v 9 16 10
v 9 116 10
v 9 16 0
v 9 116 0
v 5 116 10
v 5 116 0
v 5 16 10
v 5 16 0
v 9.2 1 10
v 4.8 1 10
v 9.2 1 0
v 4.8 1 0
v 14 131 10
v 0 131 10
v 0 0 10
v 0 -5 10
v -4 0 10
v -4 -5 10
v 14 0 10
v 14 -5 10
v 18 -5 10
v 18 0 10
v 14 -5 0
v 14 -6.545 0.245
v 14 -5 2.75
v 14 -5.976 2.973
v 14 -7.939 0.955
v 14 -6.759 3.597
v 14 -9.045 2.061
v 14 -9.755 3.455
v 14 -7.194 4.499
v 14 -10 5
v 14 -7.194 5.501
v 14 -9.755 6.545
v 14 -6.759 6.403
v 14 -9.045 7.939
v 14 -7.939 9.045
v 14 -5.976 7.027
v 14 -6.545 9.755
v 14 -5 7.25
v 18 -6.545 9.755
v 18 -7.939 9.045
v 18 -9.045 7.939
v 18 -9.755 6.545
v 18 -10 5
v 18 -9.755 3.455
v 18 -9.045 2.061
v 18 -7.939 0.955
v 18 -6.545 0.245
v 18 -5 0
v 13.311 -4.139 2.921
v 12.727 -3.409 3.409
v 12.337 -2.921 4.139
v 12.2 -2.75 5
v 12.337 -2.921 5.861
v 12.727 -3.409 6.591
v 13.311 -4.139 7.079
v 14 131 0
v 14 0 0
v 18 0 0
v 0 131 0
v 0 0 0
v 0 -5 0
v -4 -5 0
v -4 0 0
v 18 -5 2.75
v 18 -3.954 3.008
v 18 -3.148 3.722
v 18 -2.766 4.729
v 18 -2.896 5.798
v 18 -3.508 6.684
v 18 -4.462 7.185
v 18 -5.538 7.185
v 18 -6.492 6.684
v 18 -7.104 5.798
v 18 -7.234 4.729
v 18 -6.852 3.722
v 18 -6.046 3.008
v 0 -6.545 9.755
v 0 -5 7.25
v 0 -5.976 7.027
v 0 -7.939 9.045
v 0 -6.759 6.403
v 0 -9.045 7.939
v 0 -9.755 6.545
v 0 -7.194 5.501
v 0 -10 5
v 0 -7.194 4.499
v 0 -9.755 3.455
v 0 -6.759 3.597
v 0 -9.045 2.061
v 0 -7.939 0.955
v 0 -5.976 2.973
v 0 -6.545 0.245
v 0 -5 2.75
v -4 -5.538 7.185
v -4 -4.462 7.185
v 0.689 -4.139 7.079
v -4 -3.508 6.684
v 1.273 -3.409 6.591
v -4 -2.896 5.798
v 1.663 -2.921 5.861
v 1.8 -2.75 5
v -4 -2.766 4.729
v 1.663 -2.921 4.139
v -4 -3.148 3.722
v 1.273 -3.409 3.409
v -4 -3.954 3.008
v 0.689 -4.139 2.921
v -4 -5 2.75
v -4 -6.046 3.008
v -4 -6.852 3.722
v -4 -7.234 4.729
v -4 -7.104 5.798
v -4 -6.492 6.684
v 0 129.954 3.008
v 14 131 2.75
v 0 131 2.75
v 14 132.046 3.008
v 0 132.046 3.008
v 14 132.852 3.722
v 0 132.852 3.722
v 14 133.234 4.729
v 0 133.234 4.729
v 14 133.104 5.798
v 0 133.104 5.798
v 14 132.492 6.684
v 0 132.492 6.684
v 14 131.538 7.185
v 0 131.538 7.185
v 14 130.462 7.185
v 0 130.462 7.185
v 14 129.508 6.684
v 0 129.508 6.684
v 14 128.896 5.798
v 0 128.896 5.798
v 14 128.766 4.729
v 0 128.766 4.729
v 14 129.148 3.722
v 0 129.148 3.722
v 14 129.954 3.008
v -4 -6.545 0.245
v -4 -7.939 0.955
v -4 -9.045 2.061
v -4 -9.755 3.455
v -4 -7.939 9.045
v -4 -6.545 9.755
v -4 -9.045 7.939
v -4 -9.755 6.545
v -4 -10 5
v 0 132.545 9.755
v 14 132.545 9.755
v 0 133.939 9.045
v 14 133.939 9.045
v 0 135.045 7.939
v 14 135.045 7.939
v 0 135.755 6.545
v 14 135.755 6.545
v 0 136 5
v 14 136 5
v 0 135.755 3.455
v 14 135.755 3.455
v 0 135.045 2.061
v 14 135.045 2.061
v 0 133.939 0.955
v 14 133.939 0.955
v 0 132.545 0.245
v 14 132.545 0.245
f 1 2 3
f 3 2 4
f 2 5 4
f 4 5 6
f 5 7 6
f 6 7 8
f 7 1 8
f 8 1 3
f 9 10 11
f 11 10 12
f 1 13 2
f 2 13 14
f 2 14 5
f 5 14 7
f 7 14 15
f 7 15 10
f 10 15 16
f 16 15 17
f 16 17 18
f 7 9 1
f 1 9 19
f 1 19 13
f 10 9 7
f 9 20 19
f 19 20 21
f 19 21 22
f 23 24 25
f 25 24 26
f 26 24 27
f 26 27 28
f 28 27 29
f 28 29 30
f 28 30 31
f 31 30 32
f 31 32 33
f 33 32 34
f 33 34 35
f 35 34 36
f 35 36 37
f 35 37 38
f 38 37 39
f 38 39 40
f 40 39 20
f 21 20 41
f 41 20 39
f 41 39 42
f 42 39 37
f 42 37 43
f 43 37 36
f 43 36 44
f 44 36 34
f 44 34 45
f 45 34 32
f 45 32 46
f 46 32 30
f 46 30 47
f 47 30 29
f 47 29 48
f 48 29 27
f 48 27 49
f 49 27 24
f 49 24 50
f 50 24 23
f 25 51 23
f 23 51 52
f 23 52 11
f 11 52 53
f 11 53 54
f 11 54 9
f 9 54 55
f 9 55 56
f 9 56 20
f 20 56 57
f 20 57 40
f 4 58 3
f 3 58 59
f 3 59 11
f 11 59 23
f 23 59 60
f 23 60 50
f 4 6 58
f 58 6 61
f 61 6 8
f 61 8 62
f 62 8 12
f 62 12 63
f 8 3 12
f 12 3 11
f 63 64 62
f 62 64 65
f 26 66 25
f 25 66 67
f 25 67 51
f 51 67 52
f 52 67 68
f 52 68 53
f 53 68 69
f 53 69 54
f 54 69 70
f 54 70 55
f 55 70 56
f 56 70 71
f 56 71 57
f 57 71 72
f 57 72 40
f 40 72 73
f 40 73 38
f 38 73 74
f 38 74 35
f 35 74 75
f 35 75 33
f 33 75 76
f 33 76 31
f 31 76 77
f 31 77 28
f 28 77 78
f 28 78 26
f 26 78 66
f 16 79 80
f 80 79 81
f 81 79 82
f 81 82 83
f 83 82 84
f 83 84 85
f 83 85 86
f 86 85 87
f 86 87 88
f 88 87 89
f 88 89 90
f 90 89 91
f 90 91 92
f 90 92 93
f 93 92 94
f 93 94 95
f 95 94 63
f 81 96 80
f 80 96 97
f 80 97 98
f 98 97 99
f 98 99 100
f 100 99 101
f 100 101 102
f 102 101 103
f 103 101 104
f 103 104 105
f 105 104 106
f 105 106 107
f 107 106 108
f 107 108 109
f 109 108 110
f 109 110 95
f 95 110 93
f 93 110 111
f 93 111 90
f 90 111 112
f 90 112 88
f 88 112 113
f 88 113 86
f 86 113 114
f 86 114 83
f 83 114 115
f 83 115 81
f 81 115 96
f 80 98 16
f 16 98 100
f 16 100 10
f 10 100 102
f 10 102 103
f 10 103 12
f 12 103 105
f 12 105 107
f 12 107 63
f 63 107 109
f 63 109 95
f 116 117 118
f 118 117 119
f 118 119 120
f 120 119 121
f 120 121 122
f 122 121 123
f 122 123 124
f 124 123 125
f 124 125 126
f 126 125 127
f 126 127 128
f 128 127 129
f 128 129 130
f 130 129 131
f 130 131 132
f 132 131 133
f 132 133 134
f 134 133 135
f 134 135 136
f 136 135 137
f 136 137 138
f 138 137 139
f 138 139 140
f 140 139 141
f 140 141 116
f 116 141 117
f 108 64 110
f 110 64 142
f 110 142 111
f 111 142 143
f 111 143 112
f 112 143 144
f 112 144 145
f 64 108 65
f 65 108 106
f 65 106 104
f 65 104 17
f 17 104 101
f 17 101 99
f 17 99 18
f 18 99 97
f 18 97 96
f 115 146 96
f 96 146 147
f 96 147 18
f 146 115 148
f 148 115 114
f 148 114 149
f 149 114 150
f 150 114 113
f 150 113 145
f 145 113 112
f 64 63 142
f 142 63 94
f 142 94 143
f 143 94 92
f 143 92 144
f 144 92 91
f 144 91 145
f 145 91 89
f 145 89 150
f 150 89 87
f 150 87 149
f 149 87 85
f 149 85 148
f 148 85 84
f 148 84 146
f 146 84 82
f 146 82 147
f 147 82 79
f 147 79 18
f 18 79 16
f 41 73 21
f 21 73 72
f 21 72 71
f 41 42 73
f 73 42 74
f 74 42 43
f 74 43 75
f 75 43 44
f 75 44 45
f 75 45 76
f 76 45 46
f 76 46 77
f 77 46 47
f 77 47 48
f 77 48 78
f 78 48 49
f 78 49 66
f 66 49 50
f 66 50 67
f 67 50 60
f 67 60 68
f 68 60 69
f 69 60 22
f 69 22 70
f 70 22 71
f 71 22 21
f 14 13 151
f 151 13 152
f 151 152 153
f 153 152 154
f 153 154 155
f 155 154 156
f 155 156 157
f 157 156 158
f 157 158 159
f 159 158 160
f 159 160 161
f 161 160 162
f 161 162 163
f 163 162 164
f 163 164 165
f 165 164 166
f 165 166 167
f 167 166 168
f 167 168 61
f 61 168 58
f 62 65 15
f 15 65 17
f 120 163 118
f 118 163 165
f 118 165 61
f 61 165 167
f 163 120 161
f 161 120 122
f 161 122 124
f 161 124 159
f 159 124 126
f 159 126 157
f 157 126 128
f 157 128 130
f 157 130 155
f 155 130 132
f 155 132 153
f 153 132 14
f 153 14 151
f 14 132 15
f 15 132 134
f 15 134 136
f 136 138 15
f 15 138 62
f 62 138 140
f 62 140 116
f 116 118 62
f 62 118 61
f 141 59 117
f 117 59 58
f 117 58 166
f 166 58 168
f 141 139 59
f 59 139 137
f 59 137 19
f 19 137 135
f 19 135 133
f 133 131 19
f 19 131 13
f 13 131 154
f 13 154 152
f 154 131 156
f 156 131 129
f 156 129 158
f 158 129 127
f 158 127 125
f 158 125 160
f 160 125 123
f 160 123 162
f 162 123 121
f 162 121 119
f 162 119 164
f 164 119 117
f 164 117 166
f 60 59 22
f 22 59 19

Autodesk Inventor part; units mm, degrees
ref_plane "YZ Plane" through (0, 0, 0) normal (1, 0, 0) x (0, 1, 0)
ref_plane "XZ Plane" through (0, 0, 0) normal (0, 1, 0) x (-1, 0, 0)
ref_plane "XY Plane" through (0, 0, 0) normal (0, 0, 1) x (1, 0, 0)
sketch "Sketch1" plane through (0, 0, 0) normal (0, 0, 1) x (1, 0, 0)
  point P0 (0, 0)
sketch "Sketch2" plane through (0, 0, 0) normal (0, 0, 1) x (1, 0, 0)
  line L0 (0, 0) -> (0, 131)
  line L1 (0, 131) -> (14, 131)
  line L2 (14, 131) -> (14, 0)
  line L3 (0, 0) -> (-4, 0)
  line L4 (14, 0) -> (18, 0)
  line L5 (18, 0) -> (18, -10)
  line L6 (18, -10) -> (-4, -10)
  line L7 (-4, -10) -> (-4, 0)
  dimension "d0" = 14
  dimension "d17" = 4
  dimension "d18" = 10
  dimension "d19" = 4
  dimension "d38" = 131
  dimension "d39" = 131
extrude "Extrusion1" add sketch "Sketch2" along normal blind 10
sketch "Sketch4" plane through (14, 0, 0) normal (1, 0, 0) x (0, 0, -1)
  line L0 (0, 131) -> (-10, 131) projected
  arc A0 (0, 131) -> (-10, 131) centre (-5, 131) ccw
  line L1 (0, 0) -> (-10, 0) projected
  arc A1 (-10, 0) -> (0, 0) centre (-5, 0) ccw
  dimension "d4" = 5
  dimension "d5" = 5
extrude "Extrusion2" add sketch "Sketch4" against normal blind 14 contours L0 A0
sketch "Sketch8" plane through (18, -10, 0) normal (1, 0, 0) x (0, 0, -1)
  circle A0 centre (-5, 5) radius 2.25
  line L0 (0, 0) -> (0, 10) projected
  line L1 (0, 0) -> (-10, 0) projected
  dimension "d21" = 4.5
  dimension "d22" = 5
  dimension "d23" = 5
extrude "Extrusion6" cut sketch "Sketch8" against normal blind 22
fillet "Fillet1" radius 5 1 edges at (7, -10, 10)
fillet "Fillet2" radius 5 1 edges at (7, -10, 0)
sketch "Sketch10" plane through (14, 0, 10) normal (1, 0, 0) x (0, 0, -1)
  circle A0 centre (5, 131) radius 2.25
  line L0 (10, 0) -> (10, 131) projected
  arc A1 (10, 131) -> (0, 131) centre (5, 131) ccw projected
  dimension "d28" = 4.5
  dimension "d29" = 5
  dimension "d30" = 0
extrude "Extrusion7" cut sketch "Sketch10" against normal blind 14
sketch "Sketch11" plane through (0, 0, 0) normal (0, 0, -1) x (-1, 0, 0)
  line L0 (-4, 0) -> (-10, 0)
  line L1 (-10, 0) -> (-10, -10)
  line L2 (4, -10) -> (-18, -10) projected
  line L3 (-4, -10) -> (-4, 0)
  line L4 (-14, 0) -> (-14, 131) projected
  point P0 (0, 0)
  dimension "d33" = 4
  dimension "d34" = 4
  dimension "d35" = 6
extrude "Extrusion8" cut sketch "Sketch11" against normal blind 10
sketch "Sketch20" plane through (0, 0, 10) normal (0, 0, 1) x (1, 0, 0)
  line L0 (4, -5) -> (4, 0) projected
  line L1 (4, 0) -> (0, -5)
  line L2 (-4, -5) -> (4, -5) projected
  line L3 (4, -5) -> (4, -10) projected
  line L4 (0, -5) -> (4, -5)
  line L5 (4, 0) -> (4, -5)
  point P0 (0, 0)
extrude "Extrusion16" cut sketch "Sketch20" against normal blind 10
sketch "Sketch21" plane through (0, 0, 10) normal (0, 0, 1) x (1, 0, 0)
  line L0 (0, -5) -> (4, 0) projected
  line L1 (4, -5) -> (4, -10) projected
  line L2 (0, -5) -> (4, -5)
  line L3 (-4, -10) -> (4, -10) projected
  line L4 (4, -10) -> (0, -10)
  line L5 (-4, -5) -> (0, -5) projected
  line L6 (0, -5) -> (0, -10)
  line L7 (4, -5) -> (4, -10)
  point P0 (0, 0)
extrude "Extrusion17" cut sketch "Sketch21" against normal blind 10
sketch "Sketch22" plane through (0, 0, 10) normal (0, 0, 1) x (1, 0, 0)
  line L0 (10, -5) -> (10, 0) projected
  line L1 (10, 0) -> (14, -5)
  line L2 (10, -5) -> (18, -5) projected
  line L3 (10, 0) -> (10, -5)
  line L4 (10, -5) -> (14, -5)
  point P0 (0, 0)
extrude "Extrusion18" cut sketch "Sketch22" against normal blind 10
sketch "Sketch23" plane through (0, 0, 10) normal (0, 0, 1) x (1, 0, 0)
  line L0 (10, -10) -> (10, -5) projected
  line L1 (18, -5) -> (14, -5) projected
  line L2 (10, -5) -> (14, -5)
  line L3 (14, -5) -> (14, -10)
  line L4 (10, -10) -> (18, -10) projected
  line L5 (10, -5) -> (10, -10)
  line L6 (10, -10) -> (14, -10)
  point P0 (0, 0)
extrude "Extrusion19" cut sketch "Sketch23" against normal blind 10
sketch "Sketch24" plane through (0, 0, 10) normal (0, 0, 1) x (1, 0, 0)
  line L0 (4, 0) -> (10, 0) projected
  line L1 (4, 0) -> (4.8, 1)
  line L2 (0, -5) -> (4, 0) projected
  line L3 (4.8, 1) -> (9.2, 1)
  line L4 (14, -5) -> (10, 0) projected
  line L5 (9.2, 1) -> (10, 0)
  point P0 (0, 0)
  dimension "d66" = 1
extrude "Extrusion20" cut sketch "Sketch24" against normal blind 10
sketch "Sketch25" plane through (0, 0, 10) normal (0, 0, 1) x (1, 0, 0)
  line L0 (5, 116) -> (9, 116)
  line L1 (9, 116) -> (9, 16)
  line L2 (9, 16) -> (5, 16)
  line L3 (5, 16) -> (5, 116)
  line L4 (14, 0) -> (14, 131) projected
  line L5 (14, 131) -> (0, 131) projected
  line L6 (4.8, 1) -> (9.2, 1) projected
  line L7 (0, 131) -> (0, 0) projected
  dimension "d82" = 5
  dimension "d84" = 4
  dimension "d85" = 100
  dimension "d86" = 15
extrude "Extrusion21" cut sketch "Sketch25" against normal blind 10
properties part number "Rod"
